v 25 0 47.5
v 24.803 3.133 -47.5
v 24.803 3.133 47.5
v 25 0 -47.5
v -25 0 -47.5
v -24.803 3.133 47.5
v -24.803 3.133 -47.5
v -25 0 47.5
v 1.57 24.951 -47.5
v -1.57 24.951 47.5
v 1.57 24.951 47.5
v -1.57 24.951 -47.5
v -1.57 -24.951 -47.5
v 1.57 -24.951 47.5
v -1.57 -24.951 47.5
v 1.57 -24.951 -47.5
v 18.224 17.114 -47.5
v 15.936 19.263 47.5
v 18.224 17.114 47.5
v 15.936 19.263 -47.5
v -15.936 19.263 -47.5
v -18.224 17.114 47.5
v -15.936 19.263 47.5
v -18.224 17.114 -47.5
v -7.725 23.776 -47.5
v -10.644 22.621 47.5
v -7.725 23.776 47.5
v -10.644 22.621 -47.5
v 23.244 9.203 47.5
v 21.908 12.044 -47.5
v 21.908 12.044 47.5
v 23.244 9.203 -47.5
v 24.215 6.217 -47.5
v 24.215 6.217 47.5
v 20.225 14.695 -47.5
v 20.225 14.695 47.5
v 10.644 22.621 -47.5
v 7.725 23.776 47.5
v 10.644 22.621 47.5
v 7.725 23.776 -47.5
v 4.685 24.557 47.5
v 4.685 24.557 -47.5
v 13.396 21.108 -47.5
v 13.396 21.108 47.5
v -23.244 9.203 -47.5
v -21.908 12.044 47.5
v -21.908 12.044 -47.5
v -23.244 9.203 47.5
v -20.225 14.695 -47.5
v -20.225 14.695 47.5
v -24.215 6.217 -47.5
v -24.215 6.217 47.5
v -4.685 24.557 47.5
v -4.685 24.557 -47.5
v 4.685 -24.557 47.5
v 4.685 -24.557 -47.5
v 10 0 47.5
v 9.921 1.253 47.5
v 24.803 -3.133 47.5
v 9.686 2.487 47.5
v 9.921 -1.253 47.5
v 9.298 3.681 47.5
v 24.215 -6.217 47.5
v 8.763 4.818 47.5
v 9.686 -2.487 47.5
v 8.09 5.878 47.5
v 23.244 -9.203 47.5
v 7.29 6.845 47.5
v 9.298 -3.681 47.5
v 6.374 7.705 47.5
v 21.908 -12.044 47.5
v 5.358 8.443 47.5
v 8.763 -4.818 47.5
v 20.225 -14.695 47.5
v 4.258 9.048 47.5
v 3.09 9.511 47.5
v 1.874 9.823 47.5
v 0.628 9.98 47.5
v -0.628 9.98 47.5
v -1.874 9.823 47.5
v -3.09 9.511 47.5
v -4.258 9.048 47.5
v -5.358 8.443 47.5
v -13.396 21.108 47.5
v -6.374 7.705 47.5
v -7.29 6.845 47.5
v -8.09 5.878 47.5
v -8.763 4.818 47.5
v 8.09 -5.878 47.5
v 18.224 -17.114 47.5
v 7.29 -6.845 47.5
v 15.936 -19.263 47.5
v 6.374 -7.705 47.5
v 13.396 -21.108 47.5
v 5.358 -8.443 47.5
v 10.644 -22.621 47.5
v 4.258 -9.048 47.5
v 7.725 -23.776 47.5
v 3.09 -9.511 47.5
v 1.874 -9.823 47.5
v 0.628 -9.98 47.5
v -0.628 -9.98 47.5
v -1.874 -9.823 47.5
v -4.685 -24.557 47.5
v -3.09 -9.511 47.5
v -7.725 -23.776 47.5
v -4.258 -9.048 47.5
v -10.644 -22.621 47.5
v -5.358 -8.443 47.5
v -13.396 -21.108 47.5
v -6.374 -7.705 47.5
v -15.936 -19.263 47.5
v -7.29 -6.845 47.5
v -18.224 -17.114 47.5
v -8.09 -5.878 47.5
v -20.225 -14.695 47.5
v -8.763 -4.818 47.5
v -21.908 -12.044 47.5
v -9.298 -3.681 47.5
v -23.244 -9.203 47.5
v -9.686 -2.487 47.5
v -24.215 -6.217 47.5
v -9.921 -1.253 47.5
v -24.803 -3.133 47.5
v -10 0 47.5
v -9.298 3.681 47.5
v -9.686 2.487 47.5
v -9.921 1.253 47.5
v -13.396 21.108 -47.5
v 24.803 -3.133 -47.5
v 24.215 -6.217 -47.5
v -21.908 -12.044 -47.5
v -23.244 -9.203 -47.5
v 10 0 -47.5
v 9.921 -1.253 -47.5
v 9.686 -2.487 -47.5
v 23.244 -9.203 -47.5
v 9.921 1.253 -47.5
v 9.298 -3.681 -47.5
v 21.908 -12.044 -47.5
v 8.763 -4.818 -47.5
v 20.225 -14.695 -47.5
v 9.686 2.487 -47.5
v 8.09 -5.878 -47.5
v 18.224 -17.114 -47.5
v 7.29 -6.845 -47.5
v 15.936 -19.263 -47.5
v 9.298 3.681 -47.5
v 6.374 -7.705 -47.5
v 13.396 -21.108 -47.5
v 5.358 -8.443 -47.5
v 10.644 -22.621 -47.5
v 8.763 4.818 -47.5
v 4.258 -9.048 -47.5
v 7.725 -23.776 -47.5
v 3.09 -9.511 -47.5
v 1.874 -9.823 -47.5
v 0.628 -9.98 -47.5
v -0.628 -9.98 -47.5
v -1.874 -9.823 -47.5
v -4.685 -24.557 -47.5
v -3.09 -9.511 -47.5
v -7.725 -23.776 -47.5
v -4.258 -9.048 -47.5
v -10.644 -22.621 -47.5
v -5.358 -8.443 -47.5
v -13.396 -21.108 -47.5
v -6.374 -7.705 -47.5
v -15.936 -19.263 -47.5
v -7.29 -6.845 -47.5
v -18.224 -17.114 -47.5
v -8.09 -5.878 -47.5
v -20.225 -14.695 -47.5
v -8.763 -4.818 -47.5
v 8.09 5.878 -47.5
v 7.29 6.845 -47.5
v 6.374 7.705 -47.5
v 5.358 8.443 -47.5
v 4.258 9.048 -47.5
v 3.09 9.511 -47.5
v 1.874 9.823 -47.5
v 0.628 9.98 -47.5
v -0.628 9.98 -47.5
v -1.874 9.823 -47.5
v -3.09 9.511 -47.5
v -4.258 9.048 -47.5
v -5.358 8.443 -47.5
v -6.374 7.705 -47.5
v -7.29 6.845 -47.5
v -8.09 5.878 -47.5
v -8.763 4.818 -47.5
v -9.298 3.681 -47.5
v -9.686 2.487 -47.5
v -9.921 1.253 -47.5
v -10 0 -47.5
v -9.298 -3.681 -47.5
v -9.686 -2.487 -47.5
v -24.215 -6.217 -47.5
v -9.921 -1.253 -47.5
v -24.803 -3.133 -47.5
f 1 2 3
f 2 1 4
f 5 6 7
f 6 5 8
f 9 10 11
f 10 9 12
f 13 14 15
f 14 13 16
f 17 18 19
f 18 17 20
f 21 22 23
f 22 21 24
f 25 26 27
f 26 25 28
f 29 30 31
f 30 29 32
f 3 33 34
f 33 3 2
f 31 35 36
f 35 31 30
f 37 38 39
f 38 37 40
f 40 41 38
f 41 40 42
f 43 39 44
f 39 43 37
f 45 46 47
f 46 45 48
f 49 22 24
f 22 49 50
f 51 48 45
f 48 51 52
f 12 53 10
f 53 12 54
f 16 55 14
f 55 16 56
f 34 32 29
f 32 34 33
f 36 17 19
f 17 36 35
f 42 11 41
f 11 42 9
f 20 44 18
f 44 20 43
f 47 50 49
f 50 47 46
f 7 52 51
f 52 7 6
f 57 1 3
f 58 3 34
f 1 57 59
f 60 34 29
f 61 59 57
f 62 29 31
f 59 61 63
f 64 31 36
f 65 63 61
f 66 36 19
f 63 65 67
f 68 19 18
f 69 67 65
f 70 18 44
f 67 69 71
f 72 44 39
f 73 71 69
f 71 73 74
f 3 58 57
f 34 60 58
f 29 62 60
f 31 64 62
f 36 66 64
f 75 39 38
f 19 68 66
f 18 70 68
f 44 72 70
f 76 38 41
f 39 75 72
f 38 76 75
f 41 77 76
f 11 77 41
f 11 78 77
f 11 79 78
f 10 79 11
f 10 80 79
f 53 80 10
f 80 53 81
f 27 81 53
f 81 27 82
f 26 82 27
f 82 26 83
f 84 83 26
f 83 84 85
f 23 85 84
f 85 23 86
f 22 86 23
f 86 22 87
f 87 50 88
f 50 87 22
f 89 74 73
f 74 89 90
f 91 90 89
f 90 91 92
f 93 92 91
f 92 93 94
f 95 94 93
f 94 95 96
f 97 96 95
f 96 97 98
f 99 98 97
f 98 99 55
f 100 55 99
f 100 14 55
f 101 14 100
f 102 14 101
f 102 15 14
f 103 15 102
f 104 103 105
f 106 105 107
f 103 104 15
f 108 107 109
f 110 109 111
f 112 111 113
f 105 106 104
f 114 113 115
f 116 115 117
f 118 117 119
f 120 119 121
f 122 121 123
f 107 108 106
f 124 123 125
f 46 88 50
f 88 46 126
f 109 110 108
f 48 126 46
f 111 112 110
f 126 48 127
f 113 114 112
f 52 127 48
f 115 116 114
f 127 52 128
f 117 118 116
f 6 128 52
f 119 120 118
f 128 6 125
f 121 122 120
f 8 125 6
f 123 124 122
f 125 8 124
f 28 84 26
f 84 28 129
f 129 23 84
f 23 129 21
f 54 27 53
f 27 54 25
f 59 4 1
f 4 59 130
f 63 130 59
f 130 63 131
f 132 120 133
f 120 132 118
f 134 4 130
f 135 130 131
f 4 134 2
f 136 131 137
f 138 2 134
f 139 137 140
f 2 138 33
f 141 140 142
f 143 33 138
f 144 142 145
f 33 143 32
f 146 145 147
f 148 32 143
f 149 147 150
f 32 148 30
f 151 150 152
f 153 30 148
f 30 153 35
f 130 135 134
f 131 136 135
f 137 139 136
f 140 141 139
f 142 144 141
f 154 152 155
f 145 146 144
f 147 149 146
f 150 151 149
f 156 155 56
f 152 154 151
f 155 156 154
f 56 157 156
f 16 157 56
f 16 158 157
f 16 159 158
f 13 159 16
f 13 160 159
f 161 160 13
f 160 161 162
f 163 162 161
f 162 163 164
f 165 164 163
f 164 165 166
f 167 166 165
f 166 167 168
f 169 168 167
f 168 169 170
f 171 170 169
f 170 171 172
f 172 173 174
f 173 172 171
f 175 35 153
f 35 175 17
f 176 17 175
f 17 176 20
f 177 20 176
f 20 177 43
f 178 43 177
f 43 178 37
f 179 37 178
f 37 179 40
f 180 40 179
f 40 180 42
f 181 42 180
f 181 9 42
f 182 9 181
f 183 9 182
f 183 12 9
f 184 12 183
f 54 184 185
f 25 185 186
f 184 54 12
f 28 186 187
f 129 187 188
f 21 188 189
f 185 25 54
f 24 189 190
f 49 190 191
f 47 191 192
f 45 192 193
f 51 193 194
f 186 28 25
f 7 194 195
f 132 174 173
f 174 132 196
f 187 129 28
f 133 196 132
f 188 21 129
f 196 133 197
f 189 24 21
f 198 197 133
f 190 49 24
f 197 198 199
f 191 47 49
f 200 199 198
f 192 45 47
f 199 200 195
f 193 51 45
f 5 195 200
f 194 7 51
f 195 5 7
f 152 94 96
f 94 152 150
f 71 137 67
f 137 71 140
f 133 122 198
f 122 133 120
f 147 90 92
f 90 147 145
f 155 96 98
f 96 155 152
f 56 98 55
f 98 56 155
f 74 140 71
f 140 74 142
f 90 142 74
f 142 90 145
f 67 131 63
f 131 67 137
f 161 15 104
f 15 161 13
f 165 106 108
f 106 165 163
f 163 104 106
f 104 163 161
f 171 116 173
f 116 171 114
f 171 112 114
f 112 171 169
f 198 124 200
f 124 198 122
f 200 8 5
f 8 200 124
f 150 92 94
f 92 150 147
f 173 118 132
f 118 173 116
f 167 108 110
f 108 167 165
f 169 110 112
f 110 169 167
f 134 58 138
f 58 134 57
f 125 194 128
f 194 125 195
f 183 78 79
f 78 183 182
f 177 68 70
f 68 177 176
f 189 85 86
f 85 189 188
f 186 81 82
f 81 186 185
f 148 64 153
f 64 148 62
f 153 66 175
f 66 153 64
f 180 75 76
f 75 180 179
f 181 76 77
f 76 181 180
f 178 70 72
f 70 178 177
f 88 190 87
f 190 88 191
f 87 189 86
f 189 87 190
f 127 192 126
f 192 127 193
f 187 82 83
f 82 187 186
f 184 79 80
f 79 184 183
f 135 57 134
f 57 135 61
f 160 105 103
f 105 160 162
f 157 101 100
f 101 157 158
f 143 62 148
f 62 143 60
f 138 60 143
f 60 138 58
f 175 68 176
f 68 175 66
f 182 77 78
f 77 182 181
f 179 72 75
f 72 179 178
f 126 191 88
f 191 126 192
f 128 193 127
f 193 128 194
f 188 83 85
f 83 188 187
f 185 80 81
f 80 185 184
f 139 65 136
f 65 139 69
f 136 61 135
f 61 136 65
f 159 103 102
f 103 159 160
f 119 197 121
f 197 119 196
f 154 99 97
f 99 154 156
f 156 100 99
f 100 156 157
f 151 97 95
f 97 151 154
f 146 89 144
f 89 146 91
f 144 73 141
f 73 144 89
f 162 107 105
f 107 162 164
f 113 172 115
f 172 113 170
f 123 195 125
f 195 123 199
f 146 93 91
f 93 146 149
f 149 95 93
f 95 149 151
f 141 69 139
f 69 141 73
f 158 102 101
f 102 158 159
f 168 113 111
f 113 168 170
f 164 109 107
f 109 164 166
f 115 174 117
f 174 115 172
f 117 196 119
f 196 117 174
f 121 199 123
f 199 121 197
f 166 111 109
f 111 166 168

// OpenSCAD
$fn = 50;


difference() {
	union() {
		translate(v = [0, 0, -47.5000000000]) {
			cylinder(h = 95, r = 25.0000000000);
		}
	}
	union() {
		translate(v = [0, 0, -100.0000000000]) {
			cylinder(h = 200, r = 10);
		}
	}
}
